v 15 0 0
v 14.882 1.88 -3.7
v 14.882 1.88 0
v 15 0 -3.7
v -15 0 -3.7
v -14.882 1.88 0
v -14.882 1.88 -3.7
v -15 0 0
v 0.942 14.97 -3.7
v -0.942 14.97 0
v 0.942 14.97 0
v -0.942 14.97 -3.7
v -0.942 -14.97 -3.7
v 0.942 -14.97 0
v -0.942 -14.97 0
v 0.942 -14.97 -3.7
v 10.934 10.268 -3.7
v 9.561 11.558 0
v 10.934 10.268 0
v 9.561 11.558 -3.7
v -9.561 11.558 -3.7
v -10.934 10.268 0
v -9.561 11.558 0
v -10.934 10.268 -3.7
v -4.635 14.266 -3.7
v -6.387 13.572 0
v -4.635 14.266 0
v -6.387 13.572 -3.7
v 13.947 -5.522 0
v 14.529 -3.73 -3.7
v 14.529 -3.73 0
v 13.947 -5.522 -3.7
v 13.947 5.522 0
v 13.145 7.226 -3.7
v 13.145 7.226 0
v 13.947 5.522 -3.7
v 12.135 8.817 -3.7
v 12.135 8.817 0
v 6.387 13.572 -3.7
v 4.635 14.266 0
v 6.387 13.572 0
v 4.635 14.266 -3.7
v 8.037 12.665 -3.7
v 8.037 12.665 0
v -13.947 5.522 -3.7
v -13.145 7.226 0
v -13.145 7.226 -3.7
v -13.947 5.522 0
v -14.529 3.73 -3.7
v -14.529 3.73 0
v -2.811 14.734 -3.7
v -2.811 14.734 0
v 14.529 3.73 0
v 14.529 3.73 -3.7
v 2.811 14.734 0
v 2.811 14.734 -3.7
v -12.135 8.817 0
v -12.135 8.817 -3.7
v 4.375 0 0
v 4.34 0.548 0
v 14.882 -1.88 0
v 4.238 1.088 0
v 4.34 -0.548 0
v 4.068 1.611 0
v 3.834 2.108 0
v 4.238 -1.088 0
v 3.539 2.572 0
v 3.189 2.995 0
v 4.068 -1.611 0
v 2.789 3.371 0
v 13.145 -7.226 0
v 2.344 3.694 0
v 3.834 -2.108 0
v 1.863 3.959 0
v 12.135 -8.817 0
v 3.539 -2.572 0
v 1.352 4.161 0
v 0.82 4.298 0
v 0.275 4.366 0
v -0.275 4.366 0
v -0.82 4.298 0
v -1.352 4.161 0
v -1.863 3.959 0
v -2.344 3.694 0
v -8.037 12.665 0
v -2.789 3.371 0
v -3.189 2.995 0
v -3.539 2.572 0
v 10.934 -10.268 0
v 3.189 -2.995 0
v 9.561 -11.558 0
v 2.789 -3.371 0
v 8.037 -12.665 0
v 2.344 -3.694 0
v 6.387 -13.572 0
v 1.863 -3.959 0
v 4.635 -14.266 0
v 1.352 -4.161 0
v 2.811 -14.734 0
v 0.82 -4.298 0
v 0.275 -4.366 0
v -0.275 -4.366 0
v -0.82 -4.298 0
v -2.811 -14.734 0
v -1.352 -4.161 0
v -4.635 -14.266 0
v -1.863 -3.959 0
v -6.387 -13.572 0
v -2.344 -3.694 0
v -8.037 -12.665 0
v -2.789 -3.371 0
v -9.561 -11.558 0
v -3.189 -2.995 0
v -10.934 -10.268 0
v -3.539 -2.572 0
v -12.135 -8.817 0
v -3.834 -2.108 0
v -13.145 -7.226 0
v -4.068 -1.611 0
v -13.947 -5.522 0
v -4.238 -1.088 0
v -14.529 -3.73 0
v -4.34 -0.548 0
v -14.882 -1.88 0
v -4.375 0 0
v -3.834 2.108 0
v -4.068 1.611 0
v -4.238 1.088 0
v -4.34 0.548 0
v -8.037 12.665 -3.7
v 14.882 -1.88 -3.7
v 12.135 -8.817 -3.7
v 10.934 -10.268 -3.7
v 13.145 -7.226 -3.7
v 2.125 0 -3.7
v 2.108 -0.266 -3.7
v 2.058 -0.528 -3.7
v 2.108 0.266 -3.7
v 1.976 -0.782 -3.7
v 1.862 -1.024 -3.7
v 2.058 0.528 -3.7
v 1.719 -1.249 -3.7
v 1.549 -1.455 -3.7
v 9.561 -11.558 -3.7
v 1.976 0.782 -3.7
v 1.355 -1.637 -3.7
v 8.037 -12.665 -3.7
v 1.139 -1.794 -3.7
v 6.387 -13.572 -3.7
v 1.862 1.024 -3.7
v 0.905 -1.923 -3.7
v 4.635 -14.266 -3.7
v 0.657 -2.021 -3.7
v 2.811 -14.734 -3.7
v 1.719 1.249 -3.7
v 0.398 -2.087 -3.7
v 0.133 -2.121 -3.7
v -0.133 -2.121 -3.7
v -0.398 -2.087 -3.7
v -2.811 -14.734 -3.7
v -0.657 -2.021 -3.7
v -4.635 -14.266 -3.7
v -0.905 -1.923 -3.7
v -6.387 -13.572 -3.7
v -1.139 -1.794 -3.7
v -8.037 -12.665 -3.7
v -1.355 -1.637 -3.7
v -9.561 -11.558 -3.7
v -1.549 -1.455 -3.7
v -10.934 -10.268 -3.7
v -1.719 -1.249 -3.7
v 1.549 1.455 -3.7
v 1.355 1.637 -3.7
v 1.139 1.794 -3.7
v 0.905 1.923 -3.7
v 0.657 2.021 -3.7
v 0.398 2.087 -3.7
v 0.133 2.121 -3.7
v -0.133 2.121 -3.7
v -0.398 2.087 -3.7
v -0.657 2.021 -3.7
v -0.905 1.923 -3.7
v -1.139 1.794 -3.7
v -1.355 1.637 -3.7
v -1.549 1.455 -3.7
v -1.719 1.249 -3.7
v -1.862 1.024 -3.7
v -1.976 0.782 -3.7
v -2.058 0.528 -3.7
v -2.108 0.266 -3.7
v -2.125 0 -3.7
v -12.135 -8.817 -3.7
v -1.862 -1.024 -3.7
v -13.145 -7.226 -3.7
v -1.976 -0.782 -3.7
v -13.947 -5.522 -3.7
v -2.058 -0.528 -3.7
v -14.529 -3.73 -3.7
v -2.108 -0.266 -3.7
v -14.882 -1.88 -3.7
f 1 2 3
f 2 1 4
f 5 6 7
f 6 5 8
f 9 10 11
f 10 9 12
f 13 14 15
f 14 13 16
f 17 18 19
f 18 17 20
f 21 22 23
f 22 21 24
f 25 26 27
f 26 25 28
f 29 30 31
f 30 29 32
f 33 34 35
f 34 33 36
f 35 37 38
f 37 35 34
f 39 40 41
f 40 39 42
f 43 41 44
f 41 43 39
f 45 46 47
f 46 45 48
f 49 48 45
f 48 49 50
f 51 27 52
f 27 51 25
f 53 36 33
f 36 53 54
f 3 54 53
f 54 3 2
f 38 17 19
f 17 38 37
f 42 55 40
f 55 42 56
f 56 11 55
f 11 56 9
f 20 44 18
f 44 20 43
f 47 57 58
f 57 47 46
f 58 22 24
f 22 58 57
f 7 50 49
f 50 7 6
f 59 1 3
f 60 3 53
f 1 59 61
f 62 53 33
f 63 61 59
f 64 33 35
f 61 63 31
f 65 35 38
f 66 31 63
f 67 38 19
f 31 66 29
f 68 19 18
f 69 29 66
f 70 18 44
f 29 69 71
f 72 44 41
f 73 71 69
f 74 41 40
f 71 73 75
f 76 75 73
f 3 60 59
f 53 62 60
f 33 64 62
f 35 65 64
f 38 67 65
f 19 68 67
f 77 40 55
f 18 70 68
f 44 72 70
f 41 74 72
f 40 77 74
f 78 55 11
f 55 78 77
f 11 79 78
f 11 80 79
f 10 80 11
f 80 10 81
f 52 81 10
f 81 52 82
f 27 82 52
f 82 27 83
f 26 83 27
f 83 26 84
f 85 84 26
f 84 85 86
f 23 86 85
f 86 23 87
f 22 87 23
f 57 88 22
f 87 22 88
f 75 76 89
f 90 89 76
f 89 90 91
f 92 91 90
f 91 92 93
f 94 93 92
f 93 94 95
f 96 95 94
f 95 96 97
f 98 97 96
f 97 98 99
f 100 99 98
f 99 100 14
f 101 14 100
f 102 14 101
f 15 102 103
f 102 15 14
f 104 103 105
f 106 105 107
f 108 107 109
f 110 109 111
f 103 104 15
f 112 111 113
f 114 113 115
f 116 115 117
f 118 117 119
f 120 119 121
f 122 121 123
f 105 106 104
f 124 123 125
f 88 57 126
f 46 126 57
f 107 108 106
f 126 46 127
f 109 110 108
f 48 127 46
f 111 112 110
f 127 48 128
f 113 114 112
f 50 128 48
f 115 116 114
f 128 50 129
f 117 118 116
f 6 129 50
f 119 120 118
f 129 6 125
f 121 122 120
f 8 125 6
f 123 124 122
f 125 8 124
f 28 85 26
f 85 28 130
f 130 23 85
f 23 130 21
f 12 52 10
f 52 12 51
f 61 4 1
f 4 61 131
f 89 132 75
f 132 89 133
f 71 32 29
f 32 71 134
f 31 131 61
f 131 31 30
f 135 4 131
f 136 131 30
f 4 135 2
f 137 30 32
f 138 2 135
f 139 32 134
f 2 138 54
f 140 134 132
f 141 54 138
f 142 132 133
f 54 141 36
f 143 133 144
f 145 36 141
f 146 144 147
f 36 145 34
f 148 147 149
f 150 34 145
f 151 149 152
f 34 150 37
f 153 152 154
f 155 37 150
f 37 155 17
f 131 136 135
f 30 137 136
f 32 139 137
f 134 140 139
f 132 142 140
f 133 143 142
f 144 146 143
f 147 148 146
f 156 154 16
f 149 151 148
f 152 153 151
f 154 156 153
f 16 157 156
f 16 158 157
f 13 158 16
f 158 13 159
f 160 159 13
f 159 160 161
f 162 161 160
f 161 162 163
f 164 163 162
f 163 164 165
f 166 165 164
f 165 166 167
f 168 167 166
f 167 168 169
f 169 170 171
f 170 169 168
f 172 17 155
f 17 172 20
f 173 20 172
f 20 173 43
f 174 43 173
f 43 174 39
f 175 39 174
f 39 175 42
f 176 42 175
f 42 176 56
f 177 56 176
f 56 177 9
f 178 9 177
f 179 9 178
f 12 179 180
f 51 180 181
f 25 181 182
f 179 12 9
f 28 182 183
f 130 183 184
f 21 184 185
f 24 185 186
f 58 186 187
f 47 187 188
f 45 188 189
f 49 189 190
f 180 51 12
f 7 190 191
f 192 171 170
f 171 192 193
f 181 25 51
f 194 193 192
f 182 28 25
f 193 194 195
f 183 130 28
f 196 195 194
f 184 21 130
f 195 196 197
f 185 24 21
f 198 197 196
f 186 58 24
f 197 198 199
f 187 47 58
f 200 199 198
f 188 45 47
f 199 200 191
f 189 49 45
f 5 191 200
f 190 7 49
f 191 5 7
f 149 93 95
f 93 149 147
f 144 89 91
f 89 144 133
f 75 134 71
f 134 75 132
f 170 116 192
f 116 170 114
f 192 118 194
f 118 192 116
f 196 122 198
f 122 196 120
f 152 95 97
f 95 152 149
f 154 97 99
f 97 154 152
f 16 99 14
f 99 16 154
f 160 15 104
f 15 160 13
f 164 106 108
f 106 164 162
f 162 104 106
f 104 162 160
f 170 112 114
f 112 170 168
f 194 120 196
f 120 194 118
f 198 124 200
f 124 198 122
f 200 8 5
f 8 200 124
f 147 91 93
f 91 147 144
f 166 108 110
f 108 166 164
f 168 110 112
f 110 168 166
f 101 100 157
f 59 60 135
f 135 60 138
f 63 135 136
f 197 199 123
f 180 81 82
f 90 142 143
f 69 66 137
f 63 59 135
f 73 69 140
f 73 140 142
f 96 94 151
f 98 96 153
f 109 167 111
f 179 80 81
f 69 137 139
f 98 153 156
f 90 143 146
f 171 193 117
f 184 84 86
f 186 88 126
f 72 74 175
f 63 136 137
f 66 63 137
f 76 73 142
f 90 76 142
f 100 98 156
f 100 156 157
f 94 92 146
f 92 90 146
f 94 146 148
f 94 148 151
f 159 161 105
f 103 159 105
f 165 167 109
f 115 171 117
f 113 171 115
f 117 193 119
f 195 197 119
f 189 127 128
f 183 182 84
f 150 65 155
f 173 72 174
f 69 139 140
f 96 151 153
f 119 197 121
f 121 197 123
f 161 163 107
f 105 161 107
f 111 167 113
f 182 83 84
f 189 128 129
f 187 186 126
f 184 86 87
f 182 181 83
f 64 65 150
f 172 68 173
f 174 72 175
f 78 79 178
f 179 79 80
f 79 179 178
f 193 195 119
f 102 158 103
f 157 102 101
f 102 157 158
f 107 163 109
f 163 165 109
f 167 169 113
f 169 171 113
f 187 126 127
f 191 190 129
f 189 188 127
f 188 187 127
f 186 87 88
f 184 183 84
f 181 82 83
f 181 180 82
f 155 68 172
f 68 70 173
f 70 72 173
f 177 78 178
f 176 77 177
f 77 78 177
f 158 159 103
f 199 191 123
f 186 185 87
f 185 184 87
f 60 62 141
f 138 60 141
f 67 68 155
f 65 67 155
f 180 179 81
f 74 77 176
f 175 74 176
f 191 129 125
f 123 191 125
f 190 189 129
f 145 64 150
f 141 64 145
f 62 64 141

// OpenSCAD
$fn = 50;


difference() {
	union() {
		translate(v = [0, 0, -3.7000000000]) {
			cylinder(h = 3.7000000000, r = 15.0000000000);
		}
		translate(v = [0, 0, -3.7000000000]) {
			cylinder(h = 3.7000000000, r = 2.8750000000);
		}
	}
	union() {
		translate(v = [0, 0, 0]) {
			rotate(a = [0, 0, 0]) {
				difference() {
					union() {
						translate(v = [0, 0, -3.7000000000]) {
							cylinder(h = 3.7000000000, r = 2.0000000000);
						}
						translate(v = [0, 0, -3.7000000000]) {
							cylinder(h = 3.7000000000, r1 = 2.1250000000, r2 = 4.3750000000);
						}
						translate(v = [0, 0, -3.7000000000]) {
							cylinder(h = 3.7000000000, r = 2.1250000000);
						}
						translate(v = [0, 0, -3.7000000000]) {
							cylinder(h = 3.7000000000, r = 2.0000000000);
						}
					}
					union();
				}
			}
		}
	}
}
